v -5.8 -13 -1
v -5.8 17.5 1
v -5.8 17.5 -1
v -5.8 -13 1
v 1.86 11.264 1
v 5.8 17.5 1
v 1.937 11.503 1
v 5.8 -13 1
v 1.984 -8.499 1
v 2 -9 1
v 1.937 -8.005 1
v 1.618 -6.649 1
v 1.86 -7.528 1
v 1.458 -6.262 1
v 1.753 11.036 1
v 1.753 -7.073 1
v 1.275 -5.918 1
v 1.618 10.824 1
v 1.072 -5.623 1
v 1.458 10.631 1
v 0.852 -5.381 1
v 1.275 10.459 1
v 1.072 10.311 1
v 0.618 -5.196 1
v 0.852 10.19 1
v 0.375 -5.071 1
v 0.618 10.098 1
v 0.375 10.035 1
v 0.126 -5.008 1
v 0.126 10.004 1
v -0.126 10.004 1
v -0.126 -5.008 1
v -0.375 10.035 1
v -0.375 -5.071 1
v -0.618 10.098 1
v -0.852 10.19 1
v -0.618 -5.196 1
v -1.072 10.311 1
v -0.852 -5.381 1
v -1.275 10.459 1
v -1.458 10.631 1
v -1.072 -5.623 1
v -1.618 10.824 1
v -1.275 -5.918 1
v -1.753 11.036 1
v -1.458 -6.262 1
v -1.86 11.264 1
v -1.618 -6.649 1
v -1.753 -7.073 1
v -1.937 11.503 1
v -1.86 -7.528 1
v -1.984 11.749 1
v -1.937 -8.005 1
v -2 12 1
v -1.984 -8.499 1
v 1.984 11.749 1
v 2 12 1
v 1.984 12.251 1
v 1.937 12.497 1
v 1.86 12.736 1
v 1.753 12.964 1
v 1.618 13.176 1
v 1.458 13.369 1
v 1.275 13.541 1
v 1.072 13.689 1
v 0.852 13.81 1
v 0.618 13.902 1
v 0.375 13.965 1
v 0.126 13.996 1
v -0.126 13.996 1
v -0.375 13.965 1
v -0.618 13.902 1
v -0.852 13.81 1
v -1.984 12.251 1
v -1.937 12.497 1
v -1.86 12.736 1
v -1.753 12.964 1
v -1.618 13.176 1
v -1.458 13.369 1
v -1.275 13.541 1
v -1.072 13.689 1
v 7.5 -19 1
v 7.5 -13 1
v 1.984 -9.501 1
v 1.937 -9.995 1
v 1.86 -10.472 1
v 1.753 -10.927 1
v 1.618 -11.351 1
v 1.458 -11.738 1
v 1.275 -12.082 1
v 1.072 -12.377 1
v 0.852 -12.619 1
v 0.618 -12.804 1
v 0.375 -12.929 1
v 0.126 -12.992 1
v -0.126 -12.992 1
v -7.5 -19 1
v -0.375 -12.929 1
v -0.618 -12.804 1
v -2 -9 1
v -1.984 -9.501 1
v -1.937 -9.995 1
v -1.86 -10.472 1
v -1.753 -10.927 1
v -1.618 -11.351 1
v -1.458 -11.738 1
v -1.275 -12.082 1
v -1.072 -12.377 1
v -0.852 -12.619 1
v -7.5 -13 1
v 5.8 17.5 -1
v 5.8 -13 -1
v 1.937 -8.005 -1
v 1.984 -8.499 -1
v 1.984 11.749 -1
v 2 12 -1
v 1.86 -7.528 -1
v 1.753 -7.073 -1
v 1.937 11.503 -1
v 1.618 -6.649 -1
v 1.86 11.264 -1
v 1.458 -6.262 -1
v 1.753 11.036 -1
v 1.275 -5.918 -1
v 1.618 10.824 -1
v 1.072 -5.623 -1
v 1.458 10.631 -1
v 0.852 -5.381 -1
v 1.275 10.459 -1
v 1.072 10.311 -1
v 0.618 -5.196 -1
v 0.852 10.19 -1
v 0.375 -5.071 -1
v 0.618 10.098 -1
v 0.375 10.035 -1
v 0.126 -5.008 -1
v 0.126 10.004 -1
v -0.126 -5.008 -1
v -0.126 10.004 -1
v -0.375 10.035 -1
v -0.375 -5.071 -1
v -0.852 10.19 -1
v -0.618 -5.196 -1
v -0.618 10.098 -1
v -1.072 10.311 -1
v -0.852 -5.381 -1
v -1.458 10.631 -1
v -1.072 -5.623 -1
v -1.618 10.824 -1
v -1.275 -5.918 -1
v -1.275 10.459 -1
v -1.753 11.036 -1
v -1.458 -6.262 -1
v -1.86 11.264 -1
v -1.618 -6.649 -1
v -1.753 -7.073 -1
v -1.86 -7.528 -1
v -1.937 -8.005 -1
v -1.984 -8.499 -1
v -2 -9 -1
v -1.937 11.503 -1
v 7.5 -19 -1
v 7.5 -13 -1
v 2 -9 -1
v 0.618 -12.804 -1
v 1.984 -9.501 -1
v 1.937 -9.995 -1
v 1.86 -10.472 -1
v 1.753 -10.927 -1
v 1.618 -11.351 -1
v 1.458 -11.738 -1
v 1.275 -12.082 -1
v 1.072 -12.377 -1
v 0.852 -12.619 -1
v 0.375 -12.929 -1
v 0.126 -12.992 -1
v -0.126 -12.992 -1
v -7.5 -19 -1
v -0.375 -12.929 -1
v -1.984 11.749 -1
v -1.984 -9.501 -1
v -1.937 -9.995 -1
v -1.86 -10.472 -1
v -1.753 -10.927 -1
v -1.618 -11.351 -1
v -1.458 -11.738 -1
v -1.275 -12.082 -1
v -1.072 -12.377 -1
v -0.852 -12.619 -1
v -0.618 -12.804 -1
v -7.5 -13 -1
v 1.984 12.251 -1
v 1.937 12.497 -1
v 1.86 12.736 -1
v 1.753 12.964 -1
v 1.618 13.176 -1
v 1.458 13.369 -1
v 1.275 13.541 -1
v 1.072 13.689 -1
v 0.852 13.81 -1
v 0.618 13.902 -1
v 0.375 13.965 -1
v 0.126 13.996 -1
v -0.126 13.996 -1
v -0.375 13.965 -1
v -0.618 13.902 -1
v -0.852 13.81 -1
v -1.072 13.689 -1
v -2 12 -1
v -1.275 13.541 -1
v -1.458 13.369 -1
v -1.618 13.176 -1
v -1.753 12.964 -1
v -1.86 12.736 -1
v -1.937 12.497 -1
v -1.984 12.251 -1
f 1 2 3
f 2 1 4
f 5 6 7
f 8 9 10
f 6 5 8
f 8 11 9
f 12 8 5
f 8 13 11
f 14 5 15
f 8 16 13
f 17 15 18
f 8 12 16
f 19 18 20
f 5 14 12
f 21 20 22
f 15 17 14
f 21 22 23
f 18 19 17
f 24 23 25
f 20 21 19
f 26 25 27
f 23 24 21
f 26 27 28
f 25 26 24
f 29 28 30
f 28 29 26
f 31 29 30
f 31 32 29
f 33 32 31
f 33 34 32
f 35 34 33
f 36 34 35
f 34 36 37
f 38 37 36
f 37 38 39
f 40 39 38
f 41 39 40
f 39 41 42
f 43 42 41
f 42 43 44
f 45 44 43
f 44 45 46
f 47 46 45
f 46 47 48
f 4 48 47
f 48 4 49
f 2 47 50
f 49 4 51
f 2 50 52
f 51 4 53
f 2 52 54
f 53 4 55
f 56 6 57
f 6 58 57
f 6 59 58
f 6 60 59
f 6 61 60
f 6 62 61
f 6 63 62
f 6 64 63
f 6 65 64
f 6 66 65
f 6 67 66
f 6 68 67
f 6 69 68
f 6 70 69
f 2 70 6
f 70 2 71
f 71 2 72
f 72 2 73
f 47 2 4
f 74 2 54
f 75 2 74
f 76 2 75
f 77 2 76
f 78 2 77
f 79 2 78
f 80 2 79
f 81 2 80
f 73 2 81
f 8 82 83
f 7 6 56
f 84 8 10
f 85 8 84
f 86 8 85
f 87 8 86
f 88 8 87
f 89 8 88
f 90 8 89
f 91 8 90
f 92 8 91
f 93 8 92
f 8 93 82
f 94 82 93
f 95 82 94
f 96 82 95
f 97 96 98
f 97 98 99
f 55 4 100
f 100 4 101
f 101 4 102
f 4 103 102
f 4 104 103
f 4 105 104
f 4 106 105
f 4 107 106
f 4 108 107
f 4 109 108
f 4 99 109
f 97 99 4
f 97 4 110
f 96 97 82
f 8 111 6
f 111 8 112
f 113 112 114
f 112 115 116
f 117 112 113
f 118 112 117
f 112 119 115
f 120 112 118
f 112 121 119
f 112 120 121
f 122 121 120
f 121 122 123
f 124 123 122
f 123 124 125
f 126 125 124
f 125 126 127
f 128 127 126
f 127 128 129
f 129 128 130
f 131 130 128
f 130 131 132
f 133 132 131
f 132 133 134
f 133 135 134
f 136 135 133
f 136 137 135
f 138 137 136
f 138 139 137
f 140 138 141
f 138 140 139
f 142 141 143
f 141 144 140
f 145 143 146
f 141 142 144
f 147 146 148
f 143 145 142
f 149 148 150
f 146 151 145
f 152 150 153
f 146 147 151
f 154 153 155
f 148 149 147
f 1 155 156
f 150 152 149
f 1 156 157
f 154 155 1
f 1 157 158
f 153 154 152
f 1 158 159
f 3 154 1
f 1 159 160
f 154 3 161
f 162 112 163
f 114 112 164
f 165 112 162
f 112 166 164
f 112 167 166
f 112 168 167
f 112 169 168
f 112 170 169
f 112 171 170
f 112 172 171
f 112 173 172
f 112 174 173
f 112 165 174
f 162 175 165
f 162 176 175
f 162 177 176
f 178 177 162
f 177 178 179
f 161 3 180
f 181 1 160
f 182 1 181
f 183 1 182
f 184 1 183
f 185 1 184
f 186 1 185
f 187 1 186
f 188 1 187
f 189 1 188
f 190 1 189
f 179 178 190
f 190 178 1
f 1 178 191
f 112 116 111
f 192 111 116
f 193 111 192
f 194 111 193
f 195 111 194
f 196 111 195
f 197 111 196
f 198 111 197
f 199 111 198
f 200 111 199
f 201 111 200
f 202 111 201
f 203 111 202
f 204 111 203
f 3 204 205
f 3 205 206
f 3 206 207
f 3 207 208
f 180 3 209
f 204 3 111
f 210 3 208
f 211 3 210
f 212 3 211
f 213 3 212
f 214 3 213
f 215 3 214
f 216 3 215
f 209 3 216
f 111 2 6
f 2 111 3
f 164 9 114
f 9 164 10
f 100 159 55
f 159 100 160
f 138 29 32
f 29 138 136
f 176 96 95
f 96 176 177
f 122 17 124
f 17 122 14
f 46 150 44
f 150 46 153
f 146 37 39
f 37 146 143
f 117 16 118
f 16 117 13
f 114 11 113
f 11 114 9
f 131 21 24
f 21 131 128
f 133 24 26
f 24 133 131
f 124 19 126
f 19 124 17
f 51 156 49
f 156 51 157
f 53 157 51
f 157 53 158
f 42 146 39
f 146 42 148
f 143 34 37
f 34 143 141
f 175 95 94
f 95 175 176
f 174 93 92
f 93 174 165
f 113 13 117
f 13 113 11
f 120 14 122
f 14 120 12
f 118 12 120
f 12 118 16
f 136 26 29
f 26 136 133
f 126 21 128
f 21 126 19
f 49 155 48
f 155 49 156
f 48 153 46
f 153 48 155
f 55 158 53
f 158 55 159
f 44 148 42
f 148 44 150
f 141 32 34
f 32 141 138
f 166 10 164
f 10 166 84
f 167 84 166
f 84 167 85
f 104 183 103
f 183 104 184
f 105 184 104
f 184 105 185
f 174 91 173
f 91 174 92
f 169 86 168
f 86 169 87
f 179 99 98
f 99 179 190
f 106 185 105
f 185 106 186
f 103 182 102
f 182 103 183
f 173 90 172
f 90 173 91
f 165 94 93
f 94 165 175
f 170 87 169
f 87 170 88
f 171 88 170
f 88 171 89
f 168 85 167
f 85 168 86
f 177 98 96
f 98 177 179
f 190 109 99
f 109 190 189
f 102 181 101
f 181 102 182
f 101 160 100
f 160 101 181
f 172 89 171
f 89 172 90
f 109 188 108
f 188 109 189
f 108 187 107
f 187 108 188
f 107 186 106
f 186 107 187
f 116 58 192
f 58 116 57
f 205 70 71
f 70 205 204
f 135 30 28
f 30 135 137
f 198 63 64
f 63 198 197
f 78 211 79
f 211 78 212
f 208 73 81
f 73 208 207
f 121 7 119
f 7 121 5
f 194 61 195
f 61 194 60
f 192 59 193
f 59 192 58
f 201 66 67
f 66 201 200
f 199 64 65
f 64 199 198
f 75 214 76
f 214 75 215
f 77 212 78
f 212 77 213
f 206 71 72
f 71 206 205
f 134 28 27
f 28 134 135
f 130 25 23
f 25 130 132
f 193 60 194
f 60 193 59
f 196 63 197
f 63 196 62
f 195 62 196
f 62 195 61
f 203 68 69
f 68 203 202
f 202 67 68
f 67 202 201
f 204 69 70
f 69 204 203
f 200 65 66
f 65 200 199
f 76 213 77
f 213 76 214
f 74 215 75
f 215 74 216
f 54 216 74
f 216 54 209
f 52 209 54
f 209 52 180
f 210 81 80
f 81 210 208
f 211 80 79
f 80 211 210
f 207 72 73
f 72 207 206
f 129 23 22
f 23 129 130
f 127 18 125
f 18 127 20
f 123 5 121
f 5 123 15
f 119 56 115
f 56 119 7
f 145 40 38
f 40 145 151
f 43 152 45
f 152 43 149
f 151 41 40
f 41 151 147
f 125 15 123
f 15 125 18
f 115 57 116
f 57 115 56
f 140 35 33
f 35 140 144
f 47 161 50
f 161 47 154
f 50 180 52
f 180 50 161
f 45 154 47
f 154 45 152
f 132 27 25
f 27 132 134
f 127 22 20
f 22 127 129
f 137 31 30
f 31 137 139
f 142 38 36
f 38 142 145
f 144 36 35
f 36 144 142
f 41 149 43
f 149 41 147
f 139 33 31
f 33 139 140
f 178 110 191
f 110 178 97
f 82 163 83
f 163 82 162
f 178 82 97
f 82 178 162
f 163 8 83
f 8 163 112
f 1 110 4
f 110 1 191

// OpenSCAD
$fn = 50;
larg = 15;
prof = 37;
alt = 2;
larg_menor = 11.6;

difference() {
    cube([larg_menor, 35, alt], center=true);
    
    translate([0, -9, 0])
    scale([2, 4, 1])  // Aumenta no eixo X (deixa mais "comprido")
    cylinder(h = 3, d =2, center=true);

    translate([0, 12, 0])
    cylinder(h=6, d=4, center=true);
}

translate([0, -16, 0])
cube([larg, 6, alt], center=true);
